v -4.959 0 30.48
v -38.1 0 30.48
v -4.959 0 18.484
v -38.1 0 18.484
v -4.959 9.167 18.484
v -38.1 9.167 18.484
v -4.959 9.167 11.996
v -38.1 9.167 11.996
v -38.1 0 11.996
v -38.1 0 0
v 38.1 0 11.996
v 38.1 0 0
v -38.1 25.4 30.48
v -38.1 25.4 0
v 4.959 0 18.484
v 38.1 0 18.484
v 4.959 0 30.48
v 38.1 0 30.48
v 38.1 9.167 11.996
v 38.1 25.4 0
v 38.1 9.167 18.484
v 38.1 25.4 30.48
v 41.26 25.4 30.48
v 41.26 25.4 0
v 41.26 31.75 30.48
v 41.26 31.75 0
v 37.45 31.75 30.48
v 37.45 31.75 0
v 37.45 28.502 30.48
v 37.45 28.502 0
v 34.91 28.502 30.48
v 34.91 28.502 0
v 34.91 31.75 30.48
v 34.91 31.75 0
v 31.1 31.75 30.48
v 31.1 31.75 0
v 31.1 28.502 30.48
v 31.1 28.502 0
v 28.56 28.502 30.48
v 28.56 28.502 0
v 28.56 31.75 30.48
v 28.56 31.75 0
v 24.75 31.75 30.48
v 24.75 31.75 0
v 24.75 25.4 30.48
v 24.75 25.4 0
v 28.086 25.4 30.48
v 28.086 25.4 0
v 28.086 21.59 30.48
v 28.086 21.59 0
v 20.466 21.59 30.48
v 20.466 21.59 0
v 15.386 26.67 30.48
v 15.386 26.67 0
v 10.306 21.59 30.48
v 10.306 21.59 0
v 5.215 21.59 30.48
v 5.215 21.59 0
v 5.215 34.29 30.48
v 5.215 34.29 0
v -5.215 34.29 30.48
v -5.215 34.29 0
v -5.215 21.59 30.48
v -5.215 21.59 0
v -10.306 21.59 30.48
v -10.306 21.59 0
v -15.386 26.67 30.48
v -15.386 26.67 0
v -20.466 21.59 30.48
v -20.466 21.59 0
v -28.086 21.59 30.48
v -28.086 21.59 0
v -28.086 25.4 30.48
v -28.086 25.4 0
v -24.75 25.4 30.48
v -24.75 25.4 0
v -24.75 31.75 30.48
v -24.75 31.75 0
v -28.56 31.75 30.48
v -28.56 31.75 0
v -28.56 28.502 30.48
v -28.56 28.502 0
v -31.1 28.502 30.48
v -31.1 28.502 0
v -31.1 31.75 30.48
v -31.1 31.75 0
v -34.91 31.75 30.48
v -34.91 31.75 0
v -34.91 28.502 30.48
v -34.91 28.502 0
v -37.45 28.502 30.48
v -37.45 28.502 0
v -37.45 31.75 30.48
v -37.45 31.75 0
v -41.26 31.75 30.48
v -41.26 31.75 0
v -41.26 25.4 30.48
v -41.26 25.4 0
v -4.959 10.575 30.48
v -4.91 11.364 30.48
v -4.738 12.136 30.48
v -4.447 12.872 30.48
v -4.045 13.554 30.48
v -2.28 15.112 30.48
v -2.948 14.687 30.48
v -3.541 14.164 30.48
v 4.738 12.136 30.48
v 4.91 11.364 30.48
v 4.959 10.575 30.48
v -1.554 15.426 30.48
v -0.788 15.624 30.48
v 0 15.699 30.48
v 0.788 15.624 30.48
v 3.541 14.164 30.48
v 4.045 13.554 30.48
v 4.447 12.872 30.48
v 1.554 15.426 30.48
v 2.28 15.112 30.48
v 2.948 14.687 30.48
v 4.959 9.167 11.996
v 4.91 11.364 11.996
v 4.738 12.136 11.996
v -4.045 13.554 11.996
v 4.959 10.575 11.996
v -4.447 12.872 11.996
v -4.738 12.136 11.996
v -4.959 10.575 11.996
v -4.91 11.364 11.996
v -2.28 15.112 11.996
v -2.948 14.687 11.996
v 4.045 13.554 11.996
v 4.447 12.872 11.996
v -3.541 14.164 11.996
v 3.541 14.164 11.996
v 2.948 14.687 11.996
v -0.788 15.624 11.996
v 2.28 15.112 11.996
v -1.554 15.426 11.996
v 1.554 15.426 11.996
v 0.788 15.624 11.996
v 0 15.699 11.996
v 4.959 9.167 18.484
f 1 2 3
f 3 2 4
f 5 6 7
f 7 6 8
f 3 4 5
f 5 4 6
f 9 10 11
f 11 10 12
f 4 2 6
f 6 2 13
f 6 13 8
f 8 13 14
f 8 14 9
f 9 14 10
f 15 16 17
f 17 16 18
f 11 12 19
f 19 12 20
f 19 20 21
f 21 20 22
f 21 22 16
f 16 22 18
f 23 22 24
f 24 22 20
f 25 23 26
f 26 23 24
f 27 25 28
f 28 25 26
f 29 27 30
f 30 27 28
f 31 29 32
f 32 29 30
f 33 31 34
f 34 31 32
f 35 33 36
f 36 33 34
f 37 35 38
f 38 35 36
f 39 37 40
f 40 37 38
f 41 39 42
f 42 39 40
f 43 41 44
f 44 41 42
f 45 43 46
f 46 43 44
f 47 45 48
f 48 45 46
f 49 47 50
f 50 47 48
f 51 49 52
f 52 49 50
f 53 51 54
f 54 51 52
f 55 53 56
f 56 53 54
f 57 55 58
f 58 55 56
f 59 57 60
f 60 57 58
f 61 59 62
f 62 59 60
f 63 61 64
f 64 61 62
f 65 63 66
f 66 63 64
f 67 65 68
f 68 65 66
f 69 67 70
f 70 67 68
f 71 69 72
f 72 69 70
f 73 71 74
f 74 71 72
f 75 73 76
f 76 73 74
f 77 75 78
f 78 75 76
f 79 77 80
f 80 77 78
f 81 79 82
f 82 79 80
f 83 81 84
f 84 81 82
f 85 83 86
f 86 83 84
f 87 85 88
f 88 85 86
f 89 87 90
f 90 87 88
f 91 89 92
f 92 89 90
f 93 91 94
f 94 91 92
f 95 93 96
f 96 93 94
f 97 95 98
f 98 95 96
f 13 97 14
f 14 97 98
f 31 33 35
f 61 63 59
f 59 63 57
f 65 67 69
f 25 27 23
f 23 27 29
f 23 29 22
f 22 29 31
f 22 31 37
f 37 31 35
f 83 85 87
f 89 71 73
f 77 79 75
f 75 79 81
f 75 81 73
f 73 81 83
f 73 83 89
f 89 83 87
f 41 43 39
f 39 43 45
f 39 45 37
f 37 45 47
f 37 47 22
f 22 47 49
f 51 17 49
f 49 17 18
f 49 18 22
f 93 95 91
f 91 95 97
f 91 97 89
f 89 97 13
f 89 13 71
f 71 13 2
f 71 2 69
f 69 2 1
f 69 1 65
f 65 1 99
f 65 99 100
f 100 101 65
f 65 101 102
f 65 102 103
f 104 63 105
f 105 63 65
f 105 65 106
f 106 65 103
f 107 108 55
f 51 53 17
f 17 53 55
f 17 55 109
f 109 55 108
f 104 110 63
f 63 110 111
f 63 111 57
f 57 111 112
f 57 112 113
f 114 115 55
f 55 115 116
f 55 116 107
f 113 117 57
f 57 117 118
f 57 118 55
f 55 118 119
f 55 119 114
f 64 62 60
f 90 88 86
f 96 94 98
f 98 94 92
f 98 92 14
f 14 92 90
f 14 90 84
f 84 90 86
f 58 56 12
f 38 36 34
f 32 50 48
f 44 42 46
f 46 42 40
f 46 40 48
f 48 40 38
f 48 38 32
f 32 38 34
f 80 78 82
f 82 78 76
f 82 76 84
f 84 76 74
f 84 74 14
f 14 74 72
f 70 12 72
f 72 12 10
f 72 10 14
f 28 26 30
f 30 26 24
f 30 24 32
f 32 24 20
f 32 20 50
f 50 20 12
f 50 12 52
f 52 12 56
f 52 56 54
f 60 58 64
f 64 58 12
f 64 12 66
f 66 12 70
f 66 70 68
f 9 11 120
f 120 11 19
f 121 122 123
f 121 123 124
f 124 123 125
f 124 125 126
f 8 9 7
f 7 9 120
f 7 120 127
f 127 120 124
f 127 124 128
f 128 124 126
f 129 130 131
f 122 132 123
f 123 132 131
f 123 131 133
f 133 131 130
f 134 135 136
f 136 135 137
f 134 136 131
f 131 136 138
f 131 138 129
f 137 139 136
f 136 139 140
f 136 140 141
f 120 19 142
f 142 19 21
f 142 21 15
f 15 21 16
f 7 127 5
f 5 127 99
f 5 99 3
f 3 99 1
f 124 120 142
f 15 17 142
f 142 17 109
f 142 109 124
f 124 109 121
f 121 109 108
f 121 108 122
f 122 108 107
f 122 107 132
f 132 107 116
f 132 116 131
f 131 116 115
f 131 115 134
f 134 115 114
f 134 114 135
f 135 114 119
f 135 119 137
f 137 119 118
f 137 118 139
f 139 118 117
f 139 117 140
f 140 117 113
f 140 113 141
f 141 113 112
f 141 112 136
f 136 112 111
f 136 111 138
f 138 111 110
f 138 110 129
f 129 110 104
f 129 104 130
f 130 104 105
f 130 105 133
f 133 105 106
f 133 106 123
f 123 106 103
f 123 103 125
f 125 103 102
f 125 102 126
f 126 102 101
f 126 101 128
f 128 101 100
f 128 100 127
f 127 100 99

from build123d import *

# Parameters (mm, degrees)
BOSS_EXTRUDE1_DEPTH = 30.48
SKETCH4_W           = 6.48876247
SKETCH4_H           = 9.167377647
CUT_EXTRUDE2_DEPTH  = 92.667347591
CUT_EXTRUDE3_REACH  = 63.703


with BuildPart() as part:
    # Sketch1 → Boss-Extrude1 (new body)
    with BuildSketch(Plane.XY):
        Polygon((38.1, 0), (-38.1, 0), (-38.1, 25.4), (-41.260368664, 25.4), (-41.260368664, 31.75), (-37.450368664, 31.75), (-37.450368664, 28.501843318), (-34.910368664, 28.501843318), (-34.910368664, 31.75), (-31.100368664, 31.75), (-31.100368664, 28.501843318), (-28.560368664, 28.501843318), (-28.560368664, 31.75), (-24.750368664, 31.75), (-24.750368664, 25.4), (-28.086313364, 25.4), (-28.086313364, 21.59), (-20.466313364, 21.59), (-15.386313364, 26.67), (-10.306313364, 21.59), (-5.214608295, 21.59), (-5.214608295, 34.29), (5.214608295, 34.29), (5.214608295, 21.59), (10.306313364, 21.59), (15.386313364, 26.67), (20.466313364, 21.59), (28.086313364, 21.59), (28.086313364, 25.4), (24.750368664, 25.4), (24.750368664, 31.75), (28.560368664, 31.75), (28.560368664, 28.501843318), (31.100368664, 28.501843318), (31.100368664, 31.75), (34.910368664, 31.75), (34.910368664, 28.501843318), (37.450368664, 28.501843318), (37.450368664, 31.75), (41.260368664, 31.75), (41.260368664, 25.4), (38.1, 25.4), align=None)
    extrude(amount=BOSS_EXTRUDE1_DEPTH)

    # Sketch4 → Cut-Extrude2 (cut, through all)
    with BuildSketch(Plane.ZY.offset(38.1)):
        with Locations((15.24, 4.583688824)):
            Rectangle(SKETCH4_W, SKETCH4_H)
    extrude(amount=-CUT_EXTRUDE2_DEPTH, mode=Mode.SUBTRACT)

    # Cut-Extrude3: up to this face of the body (flat: up to its plane)
    cut_extrude3_end = Plane(part.part.faces().sort_by_distance((0, 4.583688824, 11.995618765))[0])
    # Sketch2<3> → Cut-Extrude3 (cut, up to the picked face)
    with BuildSketch(Plane.XY.offset(30.48), mode=Mode.PRIVATE) as cut_extrude3_sk1:
        with BuildLine():
            Line((4.958863186, 0), (-4.958863186, 0))
            Line((-4.958863186, 0), (-4.958863186, 10.574506278))
            ThreePointArc((-4.958863186, 10.574506278), (-3.540679592, 14.163599784), (0, 15.698664904))
            ThreePointArc((0, 15.698664904), (3.540679592, 14.163599784), (4.958863186, 10.574506278))
            Line((4.958863186, 10.574506278), (4.958863186, 0))
        make_face()
    cut_extrude3_tool1 = split(extrude(cut_extrude3_sk1.sketch, amount=-CUT_EXTRUDE3_REACH, mode=Mode.PRIVATE), bisect_by=cut_extrude3_end, keep=Keep.BOTH, mode=Mode.PRIVATE)
    add(cut_extrude3_tool1.solids().sort_by(Axis((0, 7.343248, 30.48), (0, 0, -1)))[0], mode=Mode.SUBTRACT)


solid = part.part
